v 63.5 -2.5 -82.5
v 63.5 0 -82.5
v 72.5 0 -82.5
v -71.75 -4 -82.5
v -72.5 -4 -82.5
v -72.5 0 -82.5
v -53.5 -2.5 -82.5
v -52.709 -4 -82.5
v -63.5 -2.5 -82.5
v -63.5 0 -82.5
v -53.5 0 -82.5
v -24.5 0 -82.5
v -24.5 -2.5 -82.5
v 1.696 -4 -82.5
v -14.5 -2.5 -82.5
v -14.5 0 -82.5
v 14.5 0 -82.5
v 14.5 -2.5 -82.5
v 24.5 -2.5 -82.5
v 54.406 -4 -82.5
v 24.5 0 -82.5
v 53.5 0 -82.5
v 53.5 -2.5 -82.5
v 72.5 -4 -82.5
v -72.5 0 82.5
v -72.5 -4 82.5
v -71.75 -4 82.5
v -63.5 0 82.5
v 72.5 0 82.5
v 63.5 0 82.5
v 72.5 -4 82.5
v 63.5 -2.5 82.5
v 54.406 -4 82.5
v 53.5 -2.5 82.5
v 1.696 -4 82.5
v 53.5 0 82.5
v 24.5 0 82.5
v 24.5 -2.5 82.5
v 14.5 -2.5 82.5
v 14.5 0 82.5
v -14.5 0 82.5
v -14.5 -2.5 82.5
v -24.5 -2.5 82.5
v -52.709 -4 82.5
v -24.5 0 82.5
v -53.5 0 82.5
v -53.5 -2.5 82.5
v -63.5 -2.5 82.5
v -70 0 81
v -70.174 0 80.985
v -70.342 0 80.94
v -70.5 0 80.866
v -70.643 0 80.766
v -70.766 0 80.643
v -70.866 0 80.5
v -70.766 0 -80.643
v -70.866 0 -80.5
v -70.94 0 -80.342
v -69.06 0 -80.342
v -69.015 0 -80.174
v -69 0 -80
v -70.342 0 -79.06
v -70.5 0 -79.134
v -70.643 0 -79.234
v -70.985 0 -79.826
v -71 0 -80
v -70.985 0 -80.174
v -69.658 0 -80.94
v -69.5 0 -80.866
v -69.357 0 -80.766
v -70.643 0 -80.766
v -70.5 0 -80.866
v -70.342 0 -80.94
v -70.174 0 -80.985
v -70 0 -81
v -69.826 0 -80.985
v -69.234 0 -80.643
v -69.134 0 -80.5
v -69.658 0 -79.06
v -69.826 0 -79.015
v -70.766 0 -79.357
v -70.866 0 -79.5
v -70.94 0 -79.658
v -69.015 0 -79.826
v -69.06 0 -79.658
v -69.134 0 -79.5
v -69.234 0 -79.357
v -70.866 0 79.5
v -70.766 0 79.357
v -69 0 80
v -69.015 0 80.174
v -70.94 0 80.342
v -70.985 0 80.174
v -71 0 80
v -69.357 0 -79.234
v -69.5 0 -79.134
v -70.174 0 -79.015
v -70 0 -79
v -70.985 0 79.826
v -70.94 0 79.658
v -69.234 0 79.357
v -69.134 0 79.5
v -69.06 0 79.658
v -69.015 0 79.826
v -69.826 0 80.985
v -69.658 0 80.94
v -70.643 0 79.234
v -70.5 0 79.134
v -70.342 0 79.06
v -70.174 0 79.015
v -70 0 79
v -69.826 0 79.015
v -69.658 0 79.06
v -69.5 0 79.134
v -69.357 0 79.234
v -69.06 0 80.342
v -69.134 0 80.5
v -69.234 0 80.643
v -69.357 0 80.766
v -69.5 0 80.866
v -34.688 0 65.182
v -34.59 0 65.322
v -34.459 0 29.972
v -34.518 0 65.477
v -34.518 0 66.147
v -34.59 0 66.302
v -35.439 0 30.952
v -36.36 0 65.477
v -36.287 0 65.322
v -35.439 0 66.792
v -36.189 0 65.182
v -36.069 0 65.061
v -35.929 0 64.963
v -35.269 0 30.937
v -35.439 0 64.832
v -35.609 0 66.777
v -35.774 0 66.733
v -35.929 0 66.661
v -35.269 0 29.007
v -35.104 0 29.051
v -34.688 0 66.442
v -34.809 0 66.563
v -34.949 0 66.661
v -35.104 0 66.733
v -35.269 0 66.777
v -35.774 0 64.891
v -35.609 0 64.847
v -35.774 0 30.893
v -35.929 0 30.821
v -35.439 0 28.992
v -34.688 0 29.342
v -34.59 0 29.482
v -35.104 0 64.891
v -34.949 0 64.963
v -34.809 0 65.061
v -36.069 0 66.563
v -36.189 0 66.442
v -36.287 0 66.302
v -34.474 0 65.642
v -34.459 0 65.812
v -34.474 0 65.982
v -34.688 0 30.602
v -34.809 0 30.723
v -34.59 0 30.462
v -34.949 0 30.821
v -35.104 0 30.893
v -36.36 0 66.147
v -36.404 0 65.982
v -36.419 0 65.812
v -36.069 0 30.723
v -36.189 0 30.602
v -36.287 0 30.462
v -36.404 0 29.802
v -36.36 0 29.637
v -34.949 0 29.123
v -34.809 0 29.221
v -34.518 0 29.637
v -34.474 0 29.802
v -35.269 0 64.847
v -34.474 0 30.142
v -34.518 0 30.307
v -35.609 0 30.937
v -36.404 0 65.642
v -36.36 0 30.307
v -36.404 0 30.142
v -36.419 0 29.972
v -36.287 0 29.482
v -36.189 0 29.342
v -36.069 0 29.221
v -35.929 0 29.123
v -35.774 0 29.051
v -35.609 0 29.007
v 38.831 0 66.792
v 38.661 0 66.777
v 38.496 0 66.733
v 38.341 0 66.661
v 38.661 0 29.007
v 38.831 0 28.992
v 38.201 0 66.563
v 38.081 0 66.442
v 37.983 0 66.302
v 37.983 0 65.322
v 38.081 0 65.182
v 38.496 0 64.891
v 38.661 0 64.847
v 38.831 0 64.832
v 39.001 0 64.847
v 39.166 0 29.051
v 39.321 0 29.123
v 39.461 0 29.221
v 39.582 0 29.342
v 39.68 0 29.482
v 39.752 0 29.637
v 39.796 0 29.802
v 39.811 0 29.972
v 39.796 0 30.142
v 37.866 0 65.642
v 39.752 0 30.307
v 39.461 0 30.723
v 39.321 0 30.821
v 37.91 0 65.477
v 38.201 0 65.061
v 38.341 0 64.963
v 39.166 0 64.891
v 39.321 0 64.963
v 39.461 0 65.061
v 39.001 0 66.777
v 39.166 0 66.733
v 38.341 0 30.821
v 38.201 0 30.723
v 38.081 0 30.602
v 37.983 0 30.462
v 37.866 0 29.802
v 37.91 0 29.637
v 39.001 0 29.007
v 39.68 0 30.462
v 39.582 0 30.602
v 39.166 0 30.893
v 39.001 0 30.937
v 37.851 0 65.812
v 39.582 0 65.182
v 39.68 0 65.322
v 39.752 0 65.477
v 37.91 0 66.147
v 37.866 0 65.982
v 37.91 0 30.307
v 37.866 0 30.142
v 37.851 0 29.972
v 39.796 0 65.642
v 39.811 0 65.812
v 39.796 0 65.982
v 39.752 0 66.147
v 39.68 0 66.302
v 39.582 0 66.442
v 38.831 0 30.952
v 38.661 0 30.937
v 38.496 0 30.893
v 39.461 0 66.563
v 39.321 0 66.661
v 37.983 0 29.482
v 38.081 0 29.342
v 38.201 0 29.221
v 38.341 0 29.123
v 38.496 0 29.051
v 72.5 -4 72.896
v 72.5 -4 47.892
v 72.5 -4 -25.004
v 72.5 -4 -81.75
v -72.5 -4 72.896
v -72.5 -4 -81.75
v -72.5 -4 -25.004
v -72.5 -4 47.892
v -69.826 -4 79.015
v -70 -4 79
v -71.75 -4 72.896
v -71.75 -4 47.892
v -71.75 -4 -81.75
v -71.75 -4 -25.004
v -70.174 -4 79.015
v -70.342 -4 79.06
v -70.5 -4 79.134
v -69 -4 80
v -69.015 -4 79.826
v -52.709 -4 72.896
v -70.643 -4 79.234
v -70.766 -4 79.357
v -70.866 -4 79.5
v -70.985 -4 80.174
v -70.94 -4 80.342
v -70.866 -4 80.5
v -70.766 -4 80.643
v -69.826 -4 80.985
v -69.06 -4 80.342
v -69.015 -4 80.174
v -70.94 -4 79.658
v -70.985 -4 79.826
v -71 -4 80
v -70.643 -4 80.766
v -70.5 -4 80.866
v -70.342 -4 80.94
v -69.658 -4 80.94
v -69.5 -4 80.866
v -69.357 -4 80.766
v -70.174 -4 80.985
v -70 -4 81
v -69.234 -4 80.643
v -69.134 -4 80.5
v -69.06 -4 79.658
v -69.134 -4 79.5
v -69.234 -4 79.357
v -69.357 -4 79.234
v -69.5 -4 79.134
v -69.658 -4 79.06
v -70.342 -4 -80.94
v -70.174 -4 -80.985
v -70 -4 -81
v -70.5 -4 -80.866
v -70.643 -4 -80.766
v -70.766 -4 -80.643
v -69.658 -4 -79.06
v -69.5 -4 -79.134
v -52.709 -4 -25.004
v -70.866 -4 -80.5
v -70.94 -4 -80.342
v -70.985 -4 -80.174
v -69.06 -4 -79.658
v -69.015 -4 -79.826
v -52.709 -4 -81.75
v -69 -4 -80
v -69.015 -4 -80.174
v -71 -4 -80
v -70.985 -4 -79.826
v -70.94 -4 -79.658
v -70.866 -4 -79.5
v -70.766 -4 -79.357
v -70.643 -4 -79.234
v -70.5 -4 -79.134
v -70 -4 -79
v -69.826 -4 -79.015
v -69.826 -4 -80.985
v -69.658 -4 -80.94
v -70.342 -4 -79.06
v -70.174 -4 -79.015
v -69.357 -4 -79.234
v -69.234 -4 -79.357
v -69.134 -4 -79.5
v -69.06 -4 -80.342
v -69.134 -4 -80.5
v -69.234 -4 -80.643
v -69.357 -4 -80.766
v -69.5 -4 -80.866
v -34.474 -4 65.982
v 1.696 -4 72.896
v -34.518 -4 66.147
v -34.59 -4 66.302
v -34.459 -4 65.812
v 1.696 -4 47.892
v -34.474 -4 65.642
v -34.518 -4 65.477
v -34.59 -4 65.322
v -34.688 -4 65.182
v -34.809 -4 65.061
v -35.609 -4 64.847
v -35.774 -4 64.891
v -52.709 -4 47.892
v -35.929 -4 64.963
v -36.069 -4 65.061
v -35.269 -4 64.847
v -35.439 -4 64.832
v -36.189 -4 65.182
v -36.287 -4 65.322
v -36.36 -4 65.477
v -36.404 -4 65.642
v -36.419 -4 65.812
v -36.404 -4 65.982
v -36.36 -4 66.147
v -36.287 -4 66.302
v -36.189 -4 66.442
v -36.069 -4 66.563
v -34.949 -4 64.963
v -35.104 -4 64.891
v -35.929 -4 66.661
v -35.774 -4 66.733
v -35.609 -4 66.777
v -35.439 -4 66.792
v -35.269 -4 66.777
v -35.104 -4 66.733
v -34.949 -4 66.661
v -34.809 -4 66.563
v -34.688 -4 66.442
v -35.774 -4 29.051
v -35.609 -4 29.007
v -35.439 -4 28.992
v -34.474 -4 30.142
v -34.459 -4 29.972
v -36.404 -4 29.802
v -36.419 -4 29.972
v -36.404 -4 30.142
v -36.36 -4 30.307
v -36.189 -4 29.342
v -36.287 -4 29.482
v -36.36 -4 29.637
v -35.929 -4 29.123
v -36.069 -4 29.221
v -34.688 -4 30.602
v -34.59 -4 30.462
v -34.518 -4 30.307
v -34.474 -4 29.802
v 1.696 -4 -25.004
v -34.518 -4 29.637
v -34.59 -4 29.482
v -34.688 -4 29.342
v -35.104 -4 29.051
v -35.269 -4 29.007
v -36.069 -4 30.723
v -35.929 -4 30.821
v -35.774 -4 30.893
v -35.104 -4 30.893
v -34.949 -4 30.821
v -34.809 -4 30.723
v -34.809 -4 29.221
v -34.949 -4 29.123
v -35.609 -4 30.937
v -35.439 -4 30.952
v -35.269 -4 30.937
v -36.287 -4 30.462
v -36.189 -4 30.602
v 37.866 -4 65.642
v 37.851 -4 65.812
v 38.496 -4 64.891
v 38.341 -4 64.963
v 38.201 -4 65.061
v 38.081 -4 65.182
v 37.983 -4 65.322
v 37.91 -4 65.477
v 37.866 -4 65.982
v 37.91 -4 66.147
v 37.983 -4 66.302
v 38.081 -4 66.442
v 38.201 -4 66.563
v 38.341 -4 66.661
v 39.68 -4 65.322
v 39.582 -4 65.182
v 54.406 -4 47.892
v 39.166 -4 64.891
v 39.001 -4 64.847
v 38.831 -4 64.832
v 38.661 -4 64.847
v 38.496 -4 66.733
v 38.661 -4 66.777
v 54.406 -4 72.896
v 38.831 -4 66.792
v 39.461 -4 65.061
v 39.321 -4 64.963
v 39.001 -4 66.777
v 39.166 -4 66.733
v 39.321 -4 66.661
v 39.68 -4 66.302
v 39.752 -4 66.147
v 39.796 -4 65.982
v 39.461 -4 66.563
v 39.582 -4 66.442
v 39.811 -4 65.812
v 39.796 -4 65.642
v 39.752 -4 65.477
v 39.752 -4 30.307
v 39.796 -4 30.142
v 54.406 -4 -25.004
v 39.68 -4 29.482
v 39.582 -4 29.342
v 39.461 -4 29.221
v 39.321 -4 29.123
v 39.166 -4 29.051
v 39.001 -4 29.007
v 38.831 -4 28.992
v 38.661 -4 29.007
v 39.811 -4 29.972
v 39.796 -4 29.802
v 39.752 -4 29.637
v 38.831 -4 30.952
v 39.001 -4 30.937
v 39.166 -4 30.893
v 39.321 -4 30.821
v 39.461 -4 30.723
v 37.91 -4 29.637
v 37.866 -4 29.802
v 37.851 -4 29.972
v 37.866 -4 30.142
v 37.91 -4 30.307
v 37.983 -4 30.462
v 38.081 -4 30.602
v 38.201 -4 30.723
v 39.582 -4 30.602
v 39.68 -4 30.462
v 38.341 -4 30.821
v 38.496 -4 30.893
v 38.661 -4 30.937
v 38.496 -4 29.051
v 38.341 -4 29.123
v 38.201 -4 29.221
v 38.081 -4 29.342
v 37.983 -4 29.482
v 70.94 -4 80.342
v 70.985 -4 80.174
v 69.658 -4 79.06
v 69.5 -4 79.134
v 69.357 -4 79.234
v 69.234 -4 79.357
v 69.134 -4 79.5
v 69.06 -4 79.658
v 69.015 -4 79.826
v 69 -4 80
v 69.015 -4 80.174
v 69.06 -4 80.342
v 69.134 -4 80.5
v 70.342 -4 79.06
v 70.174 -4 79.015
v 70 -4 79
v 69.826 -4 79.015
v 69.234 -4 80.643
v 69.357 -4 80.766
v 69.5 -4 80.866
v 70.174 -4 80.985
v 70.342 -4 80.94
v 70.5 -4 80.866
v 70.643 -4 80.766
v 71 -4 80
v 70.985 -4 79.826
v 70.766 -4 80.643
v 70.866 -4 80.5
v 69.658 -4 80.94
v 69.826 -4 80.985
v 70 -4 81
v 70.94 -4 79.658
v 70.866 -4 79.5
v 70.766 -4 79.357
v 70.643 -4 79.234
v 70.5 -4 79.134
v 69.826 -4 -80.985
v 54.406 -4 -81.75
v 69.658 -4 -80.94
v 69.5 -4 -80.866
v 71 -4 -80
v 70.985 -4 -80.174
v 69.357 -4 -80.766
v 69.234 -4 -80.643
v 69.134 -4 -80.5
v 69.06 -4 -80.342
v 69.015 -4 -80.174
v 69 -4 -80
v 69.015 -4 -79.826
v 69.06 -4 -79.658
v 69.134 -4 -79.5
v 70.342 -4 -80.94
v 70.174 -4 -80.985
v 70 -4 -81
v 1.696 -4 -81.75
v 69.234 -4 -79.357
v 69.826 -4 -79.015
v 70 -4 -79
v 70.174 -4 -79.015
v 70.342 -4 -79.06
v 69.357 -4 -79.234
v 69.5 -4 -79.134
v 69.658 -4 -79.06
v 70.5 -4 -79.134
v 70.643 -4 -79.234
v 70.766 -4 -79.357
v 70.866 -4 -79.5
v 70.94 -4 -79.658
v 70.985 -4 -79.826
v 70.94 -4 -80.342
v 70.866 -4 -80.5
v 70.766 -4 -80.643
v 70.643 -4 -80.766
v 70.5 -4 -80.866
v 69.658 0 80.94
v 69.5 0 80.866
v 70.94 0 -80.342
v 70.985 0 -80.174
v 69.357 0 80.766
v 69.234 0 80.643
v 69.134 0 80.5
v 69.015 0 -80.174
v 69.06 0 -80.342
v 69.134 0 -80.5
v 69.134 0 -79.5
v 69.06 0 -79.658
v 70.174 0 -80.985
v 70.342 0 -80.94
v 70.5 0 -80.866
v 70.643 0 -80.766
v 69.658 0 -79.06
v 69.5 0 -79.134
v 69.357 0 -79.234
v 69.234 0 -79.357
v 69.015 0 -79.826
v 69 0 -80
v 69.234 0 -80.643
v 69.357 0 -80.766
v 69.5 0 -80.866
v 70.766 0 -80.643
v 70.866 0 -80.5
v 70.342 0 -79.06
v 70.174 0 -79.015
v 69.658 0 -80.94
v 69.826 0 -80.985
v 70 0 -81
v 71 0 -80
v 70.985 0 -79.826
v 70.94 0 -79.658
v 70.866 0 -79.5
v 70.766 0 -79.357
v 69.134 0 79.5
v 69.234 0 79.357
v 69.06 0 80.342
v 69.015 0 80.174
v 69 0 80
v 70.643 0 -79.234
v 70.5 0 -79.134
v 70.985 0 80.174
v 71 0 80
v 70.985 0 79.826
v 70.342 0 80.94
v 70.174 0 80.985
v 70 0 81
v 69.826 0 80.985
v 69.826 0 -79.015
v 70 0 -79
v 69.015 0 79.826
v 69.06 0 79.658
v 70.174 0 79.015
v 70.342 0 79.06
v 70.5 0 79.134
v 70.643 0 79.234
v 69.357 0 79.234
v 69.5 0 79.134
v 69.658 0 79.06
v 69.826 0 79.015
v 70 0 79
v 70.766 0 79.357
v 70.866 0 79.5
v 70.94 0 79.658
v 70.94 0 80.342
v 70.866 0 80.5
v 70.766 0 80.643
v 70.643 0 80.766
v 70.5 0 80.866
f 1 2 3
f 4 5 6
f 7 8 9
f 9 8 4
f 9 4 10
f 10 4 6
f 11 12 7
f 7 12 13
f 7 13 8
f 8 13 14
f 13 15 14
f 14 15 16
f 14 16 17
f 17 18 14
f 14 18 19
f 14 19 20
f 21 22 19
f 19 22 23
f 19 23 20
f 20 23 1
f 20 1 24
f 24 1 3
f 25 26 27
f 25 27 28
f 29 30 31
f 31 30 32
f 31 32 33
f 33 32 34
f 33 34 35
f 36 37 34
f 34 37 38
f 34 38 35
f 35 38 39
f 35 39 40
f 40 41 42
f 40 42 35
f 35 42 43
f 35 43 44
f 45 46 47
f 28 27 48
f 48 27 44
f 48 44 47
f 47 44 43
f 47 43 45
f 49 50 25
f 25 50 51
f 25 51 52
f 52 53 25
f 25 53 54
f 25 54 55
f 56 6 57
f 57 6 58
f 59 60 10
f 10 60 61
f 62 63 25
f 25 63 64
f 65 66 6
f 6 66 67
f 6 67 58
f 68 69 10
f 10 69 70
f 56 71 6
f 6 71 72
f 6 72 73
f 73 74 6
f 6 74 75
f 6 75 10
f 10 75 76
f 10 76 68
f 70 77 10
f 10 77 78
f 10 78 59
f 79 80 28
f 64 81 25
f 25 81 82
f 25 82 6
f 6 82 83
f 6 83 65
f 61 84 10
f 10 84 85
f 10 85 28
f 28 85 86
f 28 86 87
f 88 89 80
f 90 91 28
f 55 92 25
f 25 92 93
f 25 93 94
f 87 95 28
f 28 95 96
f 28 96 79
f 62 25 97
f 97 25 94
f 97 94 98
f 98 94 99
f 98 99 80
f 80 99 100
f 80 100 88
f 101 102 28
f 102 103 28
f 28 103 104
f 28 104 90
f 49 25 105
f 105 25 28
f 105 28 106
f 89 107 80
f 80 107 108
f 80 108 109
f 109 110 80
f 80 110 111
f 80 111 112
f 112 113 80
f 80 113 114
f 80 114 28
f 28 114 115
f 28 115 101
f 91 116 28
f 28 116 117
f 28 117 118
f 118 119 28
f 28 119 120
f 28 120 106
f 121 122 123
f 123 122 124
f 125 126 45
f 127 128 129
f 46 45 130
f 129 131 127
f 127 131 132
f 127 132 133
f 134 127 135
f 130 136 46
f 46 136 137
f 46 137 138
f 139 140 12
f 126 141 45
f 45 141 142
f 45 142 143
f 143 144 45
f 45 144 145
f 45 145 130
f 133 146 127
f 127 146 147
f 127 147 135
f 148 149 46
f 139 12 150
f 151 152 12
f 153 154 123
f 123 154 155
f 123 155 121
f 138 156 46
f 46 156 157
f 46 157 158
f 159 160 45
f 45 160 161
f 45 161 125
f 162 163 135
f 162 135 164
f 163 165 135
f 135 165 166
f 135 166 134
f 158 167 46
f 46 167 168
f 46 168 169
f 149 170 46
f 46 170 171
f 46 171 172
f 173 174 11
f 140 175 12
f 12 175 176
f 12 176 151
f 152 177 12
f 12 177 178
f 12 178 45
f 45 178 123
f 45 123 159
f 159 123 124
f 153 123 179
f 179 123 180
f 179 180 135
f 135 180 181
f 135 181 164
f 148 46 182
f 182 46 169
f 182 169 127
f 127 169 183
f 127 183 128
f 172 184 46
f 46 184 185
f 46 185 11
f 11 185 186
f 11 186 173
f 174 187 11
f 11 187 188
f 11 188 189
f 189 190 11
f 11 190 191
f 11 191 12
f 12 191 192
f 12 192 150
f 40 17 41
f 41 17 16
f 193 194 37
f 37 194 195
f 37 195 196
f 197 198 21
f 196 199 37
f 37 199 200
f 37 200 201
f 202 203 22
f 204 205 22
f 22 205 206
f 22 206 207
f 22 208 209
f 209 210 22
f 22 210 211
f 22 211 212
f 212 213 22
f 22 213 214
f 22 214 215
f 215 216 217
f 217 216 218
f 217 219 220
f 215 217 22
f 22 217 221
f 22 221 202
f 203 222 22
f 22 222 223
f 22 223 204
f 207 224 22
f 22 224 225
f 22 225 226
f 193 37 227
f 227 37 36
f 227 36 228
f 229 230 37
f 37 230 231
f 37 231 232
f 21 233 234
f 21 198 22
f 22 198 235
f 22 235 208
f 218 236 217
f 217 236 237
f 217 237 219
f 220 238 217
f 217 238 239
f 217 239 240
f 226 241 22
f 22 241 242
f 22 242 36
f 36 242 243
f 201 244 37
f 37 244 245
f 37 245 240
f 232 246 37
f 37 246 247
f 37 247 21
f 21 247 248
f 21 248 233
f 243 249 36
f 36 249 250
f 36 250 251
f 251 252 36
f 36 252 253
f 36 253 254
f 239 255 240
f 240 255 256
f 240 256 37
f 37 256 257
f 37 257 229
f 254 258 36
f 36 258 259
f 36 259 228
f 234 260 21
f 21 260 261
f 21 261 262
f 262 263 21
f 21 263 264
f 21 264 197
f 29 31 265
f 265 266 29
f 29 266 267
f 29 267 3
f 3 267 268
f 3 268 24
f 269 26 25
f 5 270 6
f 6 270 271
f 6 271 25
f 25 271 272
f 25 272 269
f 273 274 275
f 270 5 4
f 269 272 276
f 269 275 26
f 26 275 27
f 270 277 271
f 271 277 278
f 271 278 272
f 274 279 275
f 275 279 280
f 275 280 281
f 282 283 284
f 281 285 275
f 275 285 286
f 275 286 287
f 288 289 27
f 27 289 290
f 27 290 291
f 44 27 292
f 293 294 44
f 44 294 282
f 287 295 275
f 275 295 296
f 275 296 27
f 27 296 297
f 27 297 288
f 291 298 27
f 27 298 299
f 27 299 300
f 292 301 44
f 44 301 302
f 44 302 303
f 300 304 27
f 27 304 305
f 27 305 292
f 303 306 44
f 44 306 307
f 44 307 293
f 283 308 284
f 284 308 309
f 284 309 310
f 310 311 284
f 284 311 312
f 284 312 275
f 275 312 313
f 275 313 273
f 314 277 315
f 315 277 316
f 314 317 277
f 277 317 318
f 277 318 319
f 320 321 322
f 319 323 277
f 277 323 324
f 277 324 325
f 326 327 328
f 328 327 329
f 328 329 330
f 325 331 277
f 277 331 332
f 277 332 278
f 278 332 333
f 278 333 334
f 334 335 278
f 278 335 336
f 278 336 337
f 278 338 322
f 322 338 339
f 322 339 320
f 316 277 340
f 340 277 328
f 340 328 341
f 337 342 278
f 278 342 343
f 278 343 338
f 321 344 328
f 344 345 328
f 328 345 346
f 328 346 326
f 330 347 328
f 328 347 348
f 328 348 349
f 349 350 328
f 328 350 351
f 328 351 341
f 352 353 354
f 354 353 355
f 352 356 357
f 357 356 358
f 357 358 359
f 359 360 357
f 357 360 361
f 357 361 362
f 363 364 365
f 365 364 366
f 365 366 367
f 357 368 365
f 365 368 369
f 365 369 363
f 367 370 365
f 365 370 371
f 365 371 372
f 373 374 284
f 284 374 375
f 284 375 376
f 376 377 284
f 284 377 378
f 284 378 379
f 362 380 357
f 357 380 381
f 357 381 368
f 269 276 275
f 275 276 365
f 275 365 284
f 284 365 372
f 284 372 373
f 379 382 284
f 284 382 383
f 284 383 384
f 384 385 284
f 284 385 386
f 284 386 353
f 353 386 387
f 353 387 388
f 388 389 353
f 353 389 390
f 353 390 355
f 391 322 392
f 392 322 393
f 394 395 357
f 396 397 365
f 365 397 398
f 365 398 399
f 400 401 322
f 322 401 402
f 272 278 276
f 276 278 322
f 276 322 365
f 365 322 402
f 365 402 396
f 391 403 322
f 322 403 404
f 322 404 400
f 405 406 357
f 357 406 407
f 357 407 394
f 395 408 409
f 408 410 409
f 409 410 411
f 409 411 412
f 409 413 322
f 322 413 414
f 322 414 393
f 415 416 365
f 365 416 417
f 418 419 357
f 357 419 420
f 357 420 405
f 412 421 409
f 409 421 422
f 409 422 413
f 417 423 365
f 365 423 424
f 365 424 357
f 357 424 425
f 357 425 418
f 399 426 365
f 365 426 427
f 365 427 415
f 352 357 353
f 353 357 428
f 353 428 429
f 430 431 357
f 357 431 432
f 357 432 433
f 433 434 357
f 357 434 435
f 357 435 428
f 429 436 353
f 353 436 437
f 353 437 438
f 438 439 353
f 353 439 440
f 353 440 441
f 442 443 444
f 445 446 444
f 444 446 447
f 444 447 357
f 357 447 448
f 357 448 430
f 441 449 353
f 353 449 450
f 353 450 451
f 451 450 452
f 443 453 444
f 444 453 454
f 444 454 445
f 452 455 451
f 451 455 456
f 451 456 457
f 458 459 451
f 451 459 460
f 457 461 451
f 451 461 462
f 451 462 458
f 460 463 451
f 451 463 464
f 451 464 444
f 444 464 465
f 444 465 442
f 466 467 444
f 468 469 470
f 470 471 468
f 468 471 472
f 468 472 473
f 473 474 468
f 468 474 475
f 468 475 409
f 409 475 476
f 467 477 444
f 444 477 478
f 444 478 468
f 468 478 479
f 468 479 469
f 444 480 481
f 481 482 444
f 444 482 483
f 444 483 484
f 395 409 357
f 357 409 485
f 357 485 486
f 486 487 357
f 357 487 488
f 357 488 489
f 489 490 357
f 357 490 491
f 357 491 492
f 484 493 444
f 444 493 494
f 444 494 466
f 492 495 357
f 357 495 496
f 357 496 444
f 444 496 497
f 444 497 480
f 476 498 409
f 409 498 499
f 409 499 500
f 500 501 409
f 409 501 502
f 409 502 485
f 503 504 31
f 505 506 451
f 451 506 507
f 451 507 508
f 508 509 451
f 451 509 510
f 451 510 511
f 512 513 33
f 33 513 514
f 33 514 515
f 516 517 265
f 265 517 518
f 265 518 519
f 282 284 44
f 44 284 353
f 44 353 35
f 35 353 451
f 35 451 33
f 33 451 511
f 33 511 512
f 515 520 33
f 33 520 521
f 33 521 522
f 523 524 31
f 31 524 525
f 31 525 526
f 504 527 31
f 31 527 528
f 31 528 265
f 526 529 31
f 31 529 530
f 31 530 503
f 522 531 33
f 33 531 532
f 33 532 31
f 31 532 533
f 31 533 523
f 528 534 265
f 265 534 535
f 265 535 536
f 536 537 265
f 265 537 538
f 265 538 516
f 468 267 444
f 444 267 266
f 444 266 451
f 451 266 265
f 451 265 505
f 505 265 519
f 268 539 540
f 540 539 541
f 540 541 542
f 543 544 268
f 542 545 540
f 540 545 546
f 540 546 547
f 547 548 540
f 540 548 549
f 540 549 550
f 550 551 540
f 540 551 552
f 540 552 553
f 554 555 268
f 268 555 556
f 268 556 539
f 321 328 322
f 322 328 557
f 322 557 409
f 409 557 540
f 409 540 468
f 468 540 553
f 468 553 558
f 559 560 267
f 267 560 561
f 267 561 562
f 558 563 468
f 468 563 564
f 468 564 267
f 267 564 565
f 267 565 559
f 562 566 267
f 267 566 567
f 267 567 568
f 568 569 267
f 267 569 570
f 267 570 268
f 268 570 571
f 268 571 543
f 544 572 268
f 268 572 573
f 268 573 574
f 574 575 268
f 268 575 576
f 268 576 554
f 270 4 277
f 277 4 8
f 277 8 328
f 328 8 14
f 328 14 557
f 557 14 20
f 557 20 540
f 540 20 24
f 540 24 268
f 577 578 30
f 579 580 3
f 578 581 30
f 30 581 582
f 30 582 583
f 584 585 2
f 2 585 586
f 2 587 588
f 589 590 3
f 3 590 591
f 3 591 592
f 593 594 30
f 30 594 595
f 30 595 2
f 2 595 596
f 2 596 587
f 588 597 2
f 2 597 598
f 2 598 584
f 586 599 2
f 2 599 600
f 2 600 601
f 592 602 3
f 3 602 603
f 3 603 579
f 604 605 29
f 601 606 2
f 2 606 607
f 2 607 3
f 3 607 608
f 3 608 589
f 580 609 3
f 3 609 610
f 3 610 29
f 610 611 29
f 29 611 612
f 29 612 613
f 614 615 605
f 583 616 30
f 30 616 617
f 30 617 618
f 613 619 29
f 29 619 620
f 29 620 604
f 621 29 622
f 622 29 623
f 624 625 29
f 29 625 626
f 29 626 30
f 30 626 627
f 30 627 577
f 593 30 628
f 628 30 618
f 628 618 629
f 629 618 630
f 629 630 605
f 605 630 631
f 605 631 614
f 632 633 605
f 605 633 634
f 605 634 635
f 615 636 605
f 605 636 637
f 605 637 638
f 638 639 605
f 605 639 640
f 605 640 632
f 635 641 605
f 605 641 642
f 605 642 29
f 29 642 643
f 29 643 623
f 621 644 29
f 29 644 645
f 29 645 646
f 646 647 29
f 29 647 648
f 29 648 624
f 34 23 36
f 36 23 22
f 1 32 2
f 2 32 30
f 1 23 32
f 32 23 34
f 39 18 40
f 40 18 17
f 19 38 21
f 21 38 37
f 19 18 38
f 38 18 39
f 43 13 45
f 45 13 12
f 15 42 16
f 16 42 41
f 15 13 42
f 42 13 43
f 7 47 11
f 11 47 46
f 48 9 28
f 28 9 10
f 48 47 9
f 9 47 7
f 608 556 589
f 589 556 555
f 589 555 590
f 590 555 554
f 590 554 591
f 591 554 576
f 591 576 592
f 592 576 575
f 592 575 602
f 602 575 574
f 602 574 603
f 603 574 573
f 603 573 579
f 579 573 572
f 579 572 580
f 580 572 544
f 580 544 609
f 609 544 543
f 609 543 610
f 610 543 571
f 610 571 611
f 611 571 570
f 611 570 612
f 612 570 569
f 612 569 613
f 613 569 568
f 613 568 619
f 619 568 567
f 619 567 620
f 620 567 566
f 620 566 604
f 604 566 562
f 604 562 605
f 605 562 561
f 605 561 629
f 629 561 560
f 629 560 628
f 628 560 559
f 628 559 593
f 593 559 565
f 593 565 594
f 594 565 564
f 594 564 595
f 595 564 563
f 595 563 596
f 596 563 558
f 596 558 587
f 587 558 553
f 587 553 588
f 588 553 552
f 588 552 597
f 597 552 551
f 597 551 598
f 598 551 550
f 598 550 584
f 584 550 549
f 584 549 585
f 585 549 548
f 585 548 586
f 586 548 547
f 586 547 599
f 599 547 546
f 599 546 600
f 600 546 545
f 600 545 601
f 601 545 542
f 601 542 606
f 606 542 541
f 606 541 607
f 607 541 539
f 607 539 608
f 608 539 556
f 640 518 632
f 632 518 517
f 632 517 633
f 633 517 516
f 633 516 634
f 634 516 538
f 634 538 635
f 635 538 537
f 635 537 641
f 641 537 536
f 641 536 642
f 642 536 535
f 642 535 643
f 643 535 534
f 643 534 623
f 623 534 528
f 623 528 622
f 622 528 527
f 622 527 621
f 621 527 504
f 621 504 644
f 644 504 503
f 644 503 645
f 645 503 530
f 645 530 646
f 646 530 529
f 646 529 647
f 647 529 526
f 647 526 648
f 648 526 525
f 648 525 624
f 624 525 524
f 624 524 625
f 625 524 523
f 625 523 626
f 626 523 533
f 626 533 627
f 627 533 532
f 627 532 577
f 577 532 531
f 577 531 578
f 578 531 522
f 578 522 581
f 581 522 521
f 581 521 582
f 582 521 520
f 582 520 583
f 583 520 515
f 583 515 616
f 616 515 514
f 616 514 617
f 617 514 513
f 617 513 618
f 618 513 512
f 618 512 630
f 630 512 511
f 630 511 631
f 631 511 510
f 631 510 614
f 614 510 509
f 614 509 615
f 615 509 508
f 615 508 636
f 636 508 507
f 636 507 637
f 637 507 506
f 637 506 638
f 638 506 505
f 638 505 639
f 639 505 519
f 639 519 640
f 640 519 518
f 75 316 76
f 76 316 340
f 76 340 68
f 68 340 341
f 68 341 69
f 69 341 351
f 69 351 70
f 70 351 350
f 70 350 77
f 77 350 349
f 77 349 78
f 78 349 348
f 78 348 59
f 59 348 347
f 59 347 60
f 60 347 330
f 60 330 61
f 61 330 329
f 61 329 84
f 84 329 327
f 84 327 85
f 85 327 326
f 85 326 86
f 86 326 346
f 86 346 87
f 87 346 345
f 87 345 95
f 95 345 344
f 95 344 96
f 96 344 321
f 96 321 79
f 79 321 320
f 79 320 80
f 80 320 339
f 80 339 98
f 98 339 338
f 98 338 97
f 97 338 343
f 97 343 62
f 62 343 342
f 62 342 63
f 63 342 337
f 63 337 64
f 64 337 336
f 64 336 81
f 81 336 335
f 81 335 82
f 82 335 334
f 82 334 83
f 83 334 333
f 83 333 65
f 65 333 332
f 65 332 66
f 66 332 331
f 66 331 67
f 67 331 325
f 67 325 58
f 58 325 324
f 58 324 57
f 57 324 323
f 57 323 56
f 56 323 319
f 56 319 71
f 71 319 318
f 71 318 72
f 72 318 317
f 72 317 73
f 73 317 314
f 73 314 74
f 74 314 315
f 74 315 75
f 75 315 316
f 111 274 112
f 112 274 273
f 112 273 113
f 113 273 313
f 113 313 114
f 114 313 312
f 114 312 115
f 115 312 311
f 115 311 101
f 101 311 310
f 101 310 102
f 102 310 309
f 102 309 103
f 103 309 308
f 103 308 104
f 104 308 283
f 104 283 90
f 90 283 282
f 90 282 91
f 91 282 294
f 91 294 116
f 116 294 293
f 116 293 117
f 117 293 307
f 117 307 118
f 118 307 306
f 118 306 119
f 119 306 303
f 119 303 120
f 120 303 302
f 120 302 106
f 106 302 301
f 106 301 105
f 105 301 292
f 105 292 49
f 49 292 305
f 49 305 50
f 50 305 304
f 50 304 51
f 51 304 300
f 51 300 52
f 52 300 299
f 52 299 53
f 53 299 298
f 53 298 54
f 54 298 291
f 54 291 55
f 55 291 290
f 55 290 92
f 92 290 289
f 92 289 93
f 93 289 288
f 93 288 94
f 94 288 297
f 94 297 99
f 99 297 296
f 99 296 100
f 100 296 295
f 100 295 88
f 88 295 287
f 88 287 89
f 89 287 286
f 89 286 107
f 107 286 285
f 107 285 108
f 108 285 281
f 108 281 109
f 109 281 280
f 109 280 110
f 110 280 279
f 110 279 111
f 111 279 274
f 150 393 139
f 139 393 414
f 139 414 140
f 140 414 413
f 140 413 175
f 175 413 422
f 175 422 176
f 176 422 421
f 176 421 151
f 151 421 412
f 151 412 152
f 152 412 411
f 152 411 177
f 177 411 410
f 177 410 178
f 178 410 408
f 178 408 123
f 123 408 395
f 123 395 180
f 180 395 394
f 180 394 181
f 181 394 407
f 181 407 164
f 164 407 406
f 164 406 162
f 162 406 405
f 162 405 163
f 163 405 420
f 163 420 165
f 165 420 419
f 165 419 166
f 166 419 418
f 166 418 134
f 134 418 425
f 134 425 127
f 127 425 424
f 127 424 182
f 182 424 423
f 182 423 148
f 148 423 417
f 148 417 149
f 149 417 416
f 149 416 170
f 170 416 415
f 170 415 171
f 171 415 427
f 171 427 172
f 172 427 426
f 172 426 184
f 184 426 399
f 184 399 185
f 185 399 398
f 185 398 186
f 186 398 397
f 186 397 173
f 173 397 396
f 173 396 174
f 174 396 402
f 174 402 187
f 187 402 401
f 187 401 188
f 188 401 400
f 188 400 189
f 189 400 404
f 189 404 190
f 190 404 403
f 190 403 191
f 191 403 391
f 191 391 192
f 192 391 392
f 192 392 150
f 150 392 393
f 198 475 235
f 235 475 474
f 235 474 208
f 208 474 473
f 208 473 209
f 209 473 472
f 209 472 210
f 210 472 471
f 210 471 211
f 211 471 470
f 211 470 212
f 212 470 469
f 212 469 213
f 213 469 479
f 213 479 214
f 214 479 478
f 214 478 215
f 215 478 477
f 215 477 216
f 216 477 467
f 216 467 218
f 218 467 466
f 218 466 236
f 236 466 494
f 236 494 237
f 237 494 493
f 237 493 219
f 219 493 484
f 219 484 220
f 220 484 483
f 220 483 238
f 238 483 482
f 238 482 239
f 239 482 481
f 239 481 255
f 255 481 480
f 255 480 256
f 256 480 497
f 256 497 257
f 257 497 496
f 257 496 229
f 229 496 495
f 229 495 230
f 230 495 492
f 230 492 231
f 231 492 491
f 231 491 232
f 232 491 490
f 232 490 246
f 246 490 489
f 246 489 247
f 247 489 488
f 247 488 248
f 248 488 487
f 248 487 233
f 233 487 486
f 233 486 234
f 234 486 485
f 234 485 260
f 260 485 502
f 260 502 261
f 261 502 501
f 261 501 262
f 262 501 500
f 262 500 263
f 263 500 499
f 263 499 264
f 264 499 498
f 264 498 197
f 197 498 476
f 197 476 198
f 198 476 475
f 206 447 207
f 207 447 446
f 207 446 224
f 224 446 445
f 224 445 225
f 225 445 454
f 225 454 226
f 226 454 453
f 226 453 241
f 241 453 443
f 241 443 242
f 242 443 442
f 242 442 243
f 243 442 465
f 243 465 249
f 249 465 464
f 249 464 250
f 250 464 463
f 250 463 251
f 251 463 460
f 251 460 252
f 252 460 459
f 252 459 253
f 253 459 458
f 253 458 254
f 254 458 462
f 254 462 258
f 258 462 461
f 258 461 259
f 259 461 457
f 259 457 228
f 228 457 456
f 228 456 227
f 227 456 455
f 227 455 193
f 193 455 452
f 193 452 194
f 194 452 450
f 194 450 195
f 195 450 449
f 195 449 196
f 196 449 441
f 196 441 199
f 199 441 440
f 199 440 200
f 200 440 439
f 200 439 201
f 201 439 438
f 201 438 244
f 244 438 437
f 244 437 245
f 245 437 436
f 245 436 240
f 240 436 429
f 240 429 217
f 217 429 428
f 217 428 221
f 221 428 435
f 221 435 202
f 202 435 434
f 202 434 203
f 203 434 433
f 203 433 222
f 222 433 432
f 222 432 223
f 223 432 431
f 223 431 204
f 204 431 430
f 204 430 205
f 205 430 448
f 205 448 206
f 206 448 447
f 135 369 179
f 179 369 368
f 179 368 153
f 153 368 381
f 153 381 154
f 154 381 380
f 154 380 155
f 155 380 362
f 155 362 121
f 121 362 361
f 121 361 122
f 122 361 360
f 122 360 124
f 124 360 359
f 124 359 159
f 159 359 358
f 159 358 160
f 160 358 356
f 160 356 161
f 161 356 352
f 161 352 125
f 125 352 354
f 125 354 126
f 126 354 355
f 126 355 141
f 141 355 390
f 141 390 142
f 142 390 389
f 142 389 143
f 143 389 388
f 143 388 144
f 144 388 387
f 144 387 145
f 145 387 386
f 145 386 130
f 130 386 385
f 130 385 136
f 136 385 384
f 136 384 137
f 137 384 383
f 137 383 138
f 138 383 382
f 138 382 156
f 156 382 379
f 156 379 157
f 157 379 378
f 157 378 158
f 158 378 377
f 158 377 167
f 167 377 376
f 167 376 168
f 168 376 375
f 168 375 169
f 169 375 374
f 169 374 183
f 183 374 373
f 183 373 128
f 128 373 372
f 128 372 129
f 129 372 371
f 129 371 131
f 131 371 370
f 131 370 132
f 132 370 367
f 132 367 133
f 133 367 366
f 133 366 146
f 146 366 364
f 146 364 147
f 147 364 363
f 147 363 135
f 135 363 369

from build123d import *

# Parameters (mm, degrees)
SKETCH2_W           = 145
SKETCH2_H           = 165
BOSS_EXTRUDE1_DEPTH = 4
SKETCH2_3_W         = 10
SKETCH2_3_H         = 165
CUT_EXTRUDE1_DEPTH  = 2.5
SKETCH3_R           = 0.98
CUT_EXTRUDE3_DEPTH  = 5
SKETCH5_R           = 0.98
CUT_EXTRUDE4_DEPTH  = 4


with BuildPart() as part:
    # Sketch2 → Boss-Extrude1 (new body)
    with BuildSketch(Plane(origin=(0, 0, 0), x_dir=(1, 0, 0), z_dir=(0, 1, 0))):
        Rectangle(SKETCH2_W, SKETCH2_H)
    extrude(amount=-BOSS_EXTRUDE1_DEPTH)

    # Sketch2<3> → Cut-Extrude1 (cut)
    with BuildSketch(Plane(origin=(0, 0, 0), x_dir=(1, 0, 0), z_dir=(0, 1, 0))):
        with Locations((-19.5, 0)):
            Rectangle(SKETCH2_3_W, SKETCH2_3_H)
        with Locations((-58.5, 0)):
            Rectangle(SKETCH2_3_W, SKETCH2_3_H)
        with Locations((19.5, 0)):
            Rectangle(SKETCH2_3_W, SKETCH2_3_H)
        with Locations((58.5, 0)):
            Rectangle(SKETCH2_3_W, SKETCH2_3_H)
    extrude(amount=-CUT_EXTRUDE1_DEPTH, mode=Mode.SUBTRACT)

    # Sketch3 → Cut-Extrude3 (cut)
    with BuildSketch(Plane.XZ.offset(4)):
        with Locations((-70, 80)):
            Circle(SKETCH3_R)
        with Locations((70, 80)):
            Circle(SKETCH3_R)
        with Locations((70, -80)):
            Circle(SKETCH3_R)
        with Locations((-70, -80)):
            Circle(SKETCH3_R)
    extrude(amount=-CUT_EXTRUDE3_DEPTH, mode=Mode.SUBTRACT)

    # Sketch5 → Cut-Extrude4 (cut)
    with BuildSketch(Plane(origin=(0, -4, 0), x_dir=(1, 0, 0), z_dir=(0, 1, 0))):
        with Locations((-35.438735521, -29.971809351)):
            Circle(SKETCH5_R)
        with Locations((38.831264479, -29.971809351)):
            Circle(SKETCH5_R)
        with Locations((38.831264479, -65.811809351)):
            Circle(SKETCH5_R)
        with Locations((-35.438735521, -65.811809351)):
            Circle(SKETCH5_R)
    extrude(amount=CUT_EXTRUDE4_DEPTH, mode=Mode.SUBTRACT)


solid = part.part
